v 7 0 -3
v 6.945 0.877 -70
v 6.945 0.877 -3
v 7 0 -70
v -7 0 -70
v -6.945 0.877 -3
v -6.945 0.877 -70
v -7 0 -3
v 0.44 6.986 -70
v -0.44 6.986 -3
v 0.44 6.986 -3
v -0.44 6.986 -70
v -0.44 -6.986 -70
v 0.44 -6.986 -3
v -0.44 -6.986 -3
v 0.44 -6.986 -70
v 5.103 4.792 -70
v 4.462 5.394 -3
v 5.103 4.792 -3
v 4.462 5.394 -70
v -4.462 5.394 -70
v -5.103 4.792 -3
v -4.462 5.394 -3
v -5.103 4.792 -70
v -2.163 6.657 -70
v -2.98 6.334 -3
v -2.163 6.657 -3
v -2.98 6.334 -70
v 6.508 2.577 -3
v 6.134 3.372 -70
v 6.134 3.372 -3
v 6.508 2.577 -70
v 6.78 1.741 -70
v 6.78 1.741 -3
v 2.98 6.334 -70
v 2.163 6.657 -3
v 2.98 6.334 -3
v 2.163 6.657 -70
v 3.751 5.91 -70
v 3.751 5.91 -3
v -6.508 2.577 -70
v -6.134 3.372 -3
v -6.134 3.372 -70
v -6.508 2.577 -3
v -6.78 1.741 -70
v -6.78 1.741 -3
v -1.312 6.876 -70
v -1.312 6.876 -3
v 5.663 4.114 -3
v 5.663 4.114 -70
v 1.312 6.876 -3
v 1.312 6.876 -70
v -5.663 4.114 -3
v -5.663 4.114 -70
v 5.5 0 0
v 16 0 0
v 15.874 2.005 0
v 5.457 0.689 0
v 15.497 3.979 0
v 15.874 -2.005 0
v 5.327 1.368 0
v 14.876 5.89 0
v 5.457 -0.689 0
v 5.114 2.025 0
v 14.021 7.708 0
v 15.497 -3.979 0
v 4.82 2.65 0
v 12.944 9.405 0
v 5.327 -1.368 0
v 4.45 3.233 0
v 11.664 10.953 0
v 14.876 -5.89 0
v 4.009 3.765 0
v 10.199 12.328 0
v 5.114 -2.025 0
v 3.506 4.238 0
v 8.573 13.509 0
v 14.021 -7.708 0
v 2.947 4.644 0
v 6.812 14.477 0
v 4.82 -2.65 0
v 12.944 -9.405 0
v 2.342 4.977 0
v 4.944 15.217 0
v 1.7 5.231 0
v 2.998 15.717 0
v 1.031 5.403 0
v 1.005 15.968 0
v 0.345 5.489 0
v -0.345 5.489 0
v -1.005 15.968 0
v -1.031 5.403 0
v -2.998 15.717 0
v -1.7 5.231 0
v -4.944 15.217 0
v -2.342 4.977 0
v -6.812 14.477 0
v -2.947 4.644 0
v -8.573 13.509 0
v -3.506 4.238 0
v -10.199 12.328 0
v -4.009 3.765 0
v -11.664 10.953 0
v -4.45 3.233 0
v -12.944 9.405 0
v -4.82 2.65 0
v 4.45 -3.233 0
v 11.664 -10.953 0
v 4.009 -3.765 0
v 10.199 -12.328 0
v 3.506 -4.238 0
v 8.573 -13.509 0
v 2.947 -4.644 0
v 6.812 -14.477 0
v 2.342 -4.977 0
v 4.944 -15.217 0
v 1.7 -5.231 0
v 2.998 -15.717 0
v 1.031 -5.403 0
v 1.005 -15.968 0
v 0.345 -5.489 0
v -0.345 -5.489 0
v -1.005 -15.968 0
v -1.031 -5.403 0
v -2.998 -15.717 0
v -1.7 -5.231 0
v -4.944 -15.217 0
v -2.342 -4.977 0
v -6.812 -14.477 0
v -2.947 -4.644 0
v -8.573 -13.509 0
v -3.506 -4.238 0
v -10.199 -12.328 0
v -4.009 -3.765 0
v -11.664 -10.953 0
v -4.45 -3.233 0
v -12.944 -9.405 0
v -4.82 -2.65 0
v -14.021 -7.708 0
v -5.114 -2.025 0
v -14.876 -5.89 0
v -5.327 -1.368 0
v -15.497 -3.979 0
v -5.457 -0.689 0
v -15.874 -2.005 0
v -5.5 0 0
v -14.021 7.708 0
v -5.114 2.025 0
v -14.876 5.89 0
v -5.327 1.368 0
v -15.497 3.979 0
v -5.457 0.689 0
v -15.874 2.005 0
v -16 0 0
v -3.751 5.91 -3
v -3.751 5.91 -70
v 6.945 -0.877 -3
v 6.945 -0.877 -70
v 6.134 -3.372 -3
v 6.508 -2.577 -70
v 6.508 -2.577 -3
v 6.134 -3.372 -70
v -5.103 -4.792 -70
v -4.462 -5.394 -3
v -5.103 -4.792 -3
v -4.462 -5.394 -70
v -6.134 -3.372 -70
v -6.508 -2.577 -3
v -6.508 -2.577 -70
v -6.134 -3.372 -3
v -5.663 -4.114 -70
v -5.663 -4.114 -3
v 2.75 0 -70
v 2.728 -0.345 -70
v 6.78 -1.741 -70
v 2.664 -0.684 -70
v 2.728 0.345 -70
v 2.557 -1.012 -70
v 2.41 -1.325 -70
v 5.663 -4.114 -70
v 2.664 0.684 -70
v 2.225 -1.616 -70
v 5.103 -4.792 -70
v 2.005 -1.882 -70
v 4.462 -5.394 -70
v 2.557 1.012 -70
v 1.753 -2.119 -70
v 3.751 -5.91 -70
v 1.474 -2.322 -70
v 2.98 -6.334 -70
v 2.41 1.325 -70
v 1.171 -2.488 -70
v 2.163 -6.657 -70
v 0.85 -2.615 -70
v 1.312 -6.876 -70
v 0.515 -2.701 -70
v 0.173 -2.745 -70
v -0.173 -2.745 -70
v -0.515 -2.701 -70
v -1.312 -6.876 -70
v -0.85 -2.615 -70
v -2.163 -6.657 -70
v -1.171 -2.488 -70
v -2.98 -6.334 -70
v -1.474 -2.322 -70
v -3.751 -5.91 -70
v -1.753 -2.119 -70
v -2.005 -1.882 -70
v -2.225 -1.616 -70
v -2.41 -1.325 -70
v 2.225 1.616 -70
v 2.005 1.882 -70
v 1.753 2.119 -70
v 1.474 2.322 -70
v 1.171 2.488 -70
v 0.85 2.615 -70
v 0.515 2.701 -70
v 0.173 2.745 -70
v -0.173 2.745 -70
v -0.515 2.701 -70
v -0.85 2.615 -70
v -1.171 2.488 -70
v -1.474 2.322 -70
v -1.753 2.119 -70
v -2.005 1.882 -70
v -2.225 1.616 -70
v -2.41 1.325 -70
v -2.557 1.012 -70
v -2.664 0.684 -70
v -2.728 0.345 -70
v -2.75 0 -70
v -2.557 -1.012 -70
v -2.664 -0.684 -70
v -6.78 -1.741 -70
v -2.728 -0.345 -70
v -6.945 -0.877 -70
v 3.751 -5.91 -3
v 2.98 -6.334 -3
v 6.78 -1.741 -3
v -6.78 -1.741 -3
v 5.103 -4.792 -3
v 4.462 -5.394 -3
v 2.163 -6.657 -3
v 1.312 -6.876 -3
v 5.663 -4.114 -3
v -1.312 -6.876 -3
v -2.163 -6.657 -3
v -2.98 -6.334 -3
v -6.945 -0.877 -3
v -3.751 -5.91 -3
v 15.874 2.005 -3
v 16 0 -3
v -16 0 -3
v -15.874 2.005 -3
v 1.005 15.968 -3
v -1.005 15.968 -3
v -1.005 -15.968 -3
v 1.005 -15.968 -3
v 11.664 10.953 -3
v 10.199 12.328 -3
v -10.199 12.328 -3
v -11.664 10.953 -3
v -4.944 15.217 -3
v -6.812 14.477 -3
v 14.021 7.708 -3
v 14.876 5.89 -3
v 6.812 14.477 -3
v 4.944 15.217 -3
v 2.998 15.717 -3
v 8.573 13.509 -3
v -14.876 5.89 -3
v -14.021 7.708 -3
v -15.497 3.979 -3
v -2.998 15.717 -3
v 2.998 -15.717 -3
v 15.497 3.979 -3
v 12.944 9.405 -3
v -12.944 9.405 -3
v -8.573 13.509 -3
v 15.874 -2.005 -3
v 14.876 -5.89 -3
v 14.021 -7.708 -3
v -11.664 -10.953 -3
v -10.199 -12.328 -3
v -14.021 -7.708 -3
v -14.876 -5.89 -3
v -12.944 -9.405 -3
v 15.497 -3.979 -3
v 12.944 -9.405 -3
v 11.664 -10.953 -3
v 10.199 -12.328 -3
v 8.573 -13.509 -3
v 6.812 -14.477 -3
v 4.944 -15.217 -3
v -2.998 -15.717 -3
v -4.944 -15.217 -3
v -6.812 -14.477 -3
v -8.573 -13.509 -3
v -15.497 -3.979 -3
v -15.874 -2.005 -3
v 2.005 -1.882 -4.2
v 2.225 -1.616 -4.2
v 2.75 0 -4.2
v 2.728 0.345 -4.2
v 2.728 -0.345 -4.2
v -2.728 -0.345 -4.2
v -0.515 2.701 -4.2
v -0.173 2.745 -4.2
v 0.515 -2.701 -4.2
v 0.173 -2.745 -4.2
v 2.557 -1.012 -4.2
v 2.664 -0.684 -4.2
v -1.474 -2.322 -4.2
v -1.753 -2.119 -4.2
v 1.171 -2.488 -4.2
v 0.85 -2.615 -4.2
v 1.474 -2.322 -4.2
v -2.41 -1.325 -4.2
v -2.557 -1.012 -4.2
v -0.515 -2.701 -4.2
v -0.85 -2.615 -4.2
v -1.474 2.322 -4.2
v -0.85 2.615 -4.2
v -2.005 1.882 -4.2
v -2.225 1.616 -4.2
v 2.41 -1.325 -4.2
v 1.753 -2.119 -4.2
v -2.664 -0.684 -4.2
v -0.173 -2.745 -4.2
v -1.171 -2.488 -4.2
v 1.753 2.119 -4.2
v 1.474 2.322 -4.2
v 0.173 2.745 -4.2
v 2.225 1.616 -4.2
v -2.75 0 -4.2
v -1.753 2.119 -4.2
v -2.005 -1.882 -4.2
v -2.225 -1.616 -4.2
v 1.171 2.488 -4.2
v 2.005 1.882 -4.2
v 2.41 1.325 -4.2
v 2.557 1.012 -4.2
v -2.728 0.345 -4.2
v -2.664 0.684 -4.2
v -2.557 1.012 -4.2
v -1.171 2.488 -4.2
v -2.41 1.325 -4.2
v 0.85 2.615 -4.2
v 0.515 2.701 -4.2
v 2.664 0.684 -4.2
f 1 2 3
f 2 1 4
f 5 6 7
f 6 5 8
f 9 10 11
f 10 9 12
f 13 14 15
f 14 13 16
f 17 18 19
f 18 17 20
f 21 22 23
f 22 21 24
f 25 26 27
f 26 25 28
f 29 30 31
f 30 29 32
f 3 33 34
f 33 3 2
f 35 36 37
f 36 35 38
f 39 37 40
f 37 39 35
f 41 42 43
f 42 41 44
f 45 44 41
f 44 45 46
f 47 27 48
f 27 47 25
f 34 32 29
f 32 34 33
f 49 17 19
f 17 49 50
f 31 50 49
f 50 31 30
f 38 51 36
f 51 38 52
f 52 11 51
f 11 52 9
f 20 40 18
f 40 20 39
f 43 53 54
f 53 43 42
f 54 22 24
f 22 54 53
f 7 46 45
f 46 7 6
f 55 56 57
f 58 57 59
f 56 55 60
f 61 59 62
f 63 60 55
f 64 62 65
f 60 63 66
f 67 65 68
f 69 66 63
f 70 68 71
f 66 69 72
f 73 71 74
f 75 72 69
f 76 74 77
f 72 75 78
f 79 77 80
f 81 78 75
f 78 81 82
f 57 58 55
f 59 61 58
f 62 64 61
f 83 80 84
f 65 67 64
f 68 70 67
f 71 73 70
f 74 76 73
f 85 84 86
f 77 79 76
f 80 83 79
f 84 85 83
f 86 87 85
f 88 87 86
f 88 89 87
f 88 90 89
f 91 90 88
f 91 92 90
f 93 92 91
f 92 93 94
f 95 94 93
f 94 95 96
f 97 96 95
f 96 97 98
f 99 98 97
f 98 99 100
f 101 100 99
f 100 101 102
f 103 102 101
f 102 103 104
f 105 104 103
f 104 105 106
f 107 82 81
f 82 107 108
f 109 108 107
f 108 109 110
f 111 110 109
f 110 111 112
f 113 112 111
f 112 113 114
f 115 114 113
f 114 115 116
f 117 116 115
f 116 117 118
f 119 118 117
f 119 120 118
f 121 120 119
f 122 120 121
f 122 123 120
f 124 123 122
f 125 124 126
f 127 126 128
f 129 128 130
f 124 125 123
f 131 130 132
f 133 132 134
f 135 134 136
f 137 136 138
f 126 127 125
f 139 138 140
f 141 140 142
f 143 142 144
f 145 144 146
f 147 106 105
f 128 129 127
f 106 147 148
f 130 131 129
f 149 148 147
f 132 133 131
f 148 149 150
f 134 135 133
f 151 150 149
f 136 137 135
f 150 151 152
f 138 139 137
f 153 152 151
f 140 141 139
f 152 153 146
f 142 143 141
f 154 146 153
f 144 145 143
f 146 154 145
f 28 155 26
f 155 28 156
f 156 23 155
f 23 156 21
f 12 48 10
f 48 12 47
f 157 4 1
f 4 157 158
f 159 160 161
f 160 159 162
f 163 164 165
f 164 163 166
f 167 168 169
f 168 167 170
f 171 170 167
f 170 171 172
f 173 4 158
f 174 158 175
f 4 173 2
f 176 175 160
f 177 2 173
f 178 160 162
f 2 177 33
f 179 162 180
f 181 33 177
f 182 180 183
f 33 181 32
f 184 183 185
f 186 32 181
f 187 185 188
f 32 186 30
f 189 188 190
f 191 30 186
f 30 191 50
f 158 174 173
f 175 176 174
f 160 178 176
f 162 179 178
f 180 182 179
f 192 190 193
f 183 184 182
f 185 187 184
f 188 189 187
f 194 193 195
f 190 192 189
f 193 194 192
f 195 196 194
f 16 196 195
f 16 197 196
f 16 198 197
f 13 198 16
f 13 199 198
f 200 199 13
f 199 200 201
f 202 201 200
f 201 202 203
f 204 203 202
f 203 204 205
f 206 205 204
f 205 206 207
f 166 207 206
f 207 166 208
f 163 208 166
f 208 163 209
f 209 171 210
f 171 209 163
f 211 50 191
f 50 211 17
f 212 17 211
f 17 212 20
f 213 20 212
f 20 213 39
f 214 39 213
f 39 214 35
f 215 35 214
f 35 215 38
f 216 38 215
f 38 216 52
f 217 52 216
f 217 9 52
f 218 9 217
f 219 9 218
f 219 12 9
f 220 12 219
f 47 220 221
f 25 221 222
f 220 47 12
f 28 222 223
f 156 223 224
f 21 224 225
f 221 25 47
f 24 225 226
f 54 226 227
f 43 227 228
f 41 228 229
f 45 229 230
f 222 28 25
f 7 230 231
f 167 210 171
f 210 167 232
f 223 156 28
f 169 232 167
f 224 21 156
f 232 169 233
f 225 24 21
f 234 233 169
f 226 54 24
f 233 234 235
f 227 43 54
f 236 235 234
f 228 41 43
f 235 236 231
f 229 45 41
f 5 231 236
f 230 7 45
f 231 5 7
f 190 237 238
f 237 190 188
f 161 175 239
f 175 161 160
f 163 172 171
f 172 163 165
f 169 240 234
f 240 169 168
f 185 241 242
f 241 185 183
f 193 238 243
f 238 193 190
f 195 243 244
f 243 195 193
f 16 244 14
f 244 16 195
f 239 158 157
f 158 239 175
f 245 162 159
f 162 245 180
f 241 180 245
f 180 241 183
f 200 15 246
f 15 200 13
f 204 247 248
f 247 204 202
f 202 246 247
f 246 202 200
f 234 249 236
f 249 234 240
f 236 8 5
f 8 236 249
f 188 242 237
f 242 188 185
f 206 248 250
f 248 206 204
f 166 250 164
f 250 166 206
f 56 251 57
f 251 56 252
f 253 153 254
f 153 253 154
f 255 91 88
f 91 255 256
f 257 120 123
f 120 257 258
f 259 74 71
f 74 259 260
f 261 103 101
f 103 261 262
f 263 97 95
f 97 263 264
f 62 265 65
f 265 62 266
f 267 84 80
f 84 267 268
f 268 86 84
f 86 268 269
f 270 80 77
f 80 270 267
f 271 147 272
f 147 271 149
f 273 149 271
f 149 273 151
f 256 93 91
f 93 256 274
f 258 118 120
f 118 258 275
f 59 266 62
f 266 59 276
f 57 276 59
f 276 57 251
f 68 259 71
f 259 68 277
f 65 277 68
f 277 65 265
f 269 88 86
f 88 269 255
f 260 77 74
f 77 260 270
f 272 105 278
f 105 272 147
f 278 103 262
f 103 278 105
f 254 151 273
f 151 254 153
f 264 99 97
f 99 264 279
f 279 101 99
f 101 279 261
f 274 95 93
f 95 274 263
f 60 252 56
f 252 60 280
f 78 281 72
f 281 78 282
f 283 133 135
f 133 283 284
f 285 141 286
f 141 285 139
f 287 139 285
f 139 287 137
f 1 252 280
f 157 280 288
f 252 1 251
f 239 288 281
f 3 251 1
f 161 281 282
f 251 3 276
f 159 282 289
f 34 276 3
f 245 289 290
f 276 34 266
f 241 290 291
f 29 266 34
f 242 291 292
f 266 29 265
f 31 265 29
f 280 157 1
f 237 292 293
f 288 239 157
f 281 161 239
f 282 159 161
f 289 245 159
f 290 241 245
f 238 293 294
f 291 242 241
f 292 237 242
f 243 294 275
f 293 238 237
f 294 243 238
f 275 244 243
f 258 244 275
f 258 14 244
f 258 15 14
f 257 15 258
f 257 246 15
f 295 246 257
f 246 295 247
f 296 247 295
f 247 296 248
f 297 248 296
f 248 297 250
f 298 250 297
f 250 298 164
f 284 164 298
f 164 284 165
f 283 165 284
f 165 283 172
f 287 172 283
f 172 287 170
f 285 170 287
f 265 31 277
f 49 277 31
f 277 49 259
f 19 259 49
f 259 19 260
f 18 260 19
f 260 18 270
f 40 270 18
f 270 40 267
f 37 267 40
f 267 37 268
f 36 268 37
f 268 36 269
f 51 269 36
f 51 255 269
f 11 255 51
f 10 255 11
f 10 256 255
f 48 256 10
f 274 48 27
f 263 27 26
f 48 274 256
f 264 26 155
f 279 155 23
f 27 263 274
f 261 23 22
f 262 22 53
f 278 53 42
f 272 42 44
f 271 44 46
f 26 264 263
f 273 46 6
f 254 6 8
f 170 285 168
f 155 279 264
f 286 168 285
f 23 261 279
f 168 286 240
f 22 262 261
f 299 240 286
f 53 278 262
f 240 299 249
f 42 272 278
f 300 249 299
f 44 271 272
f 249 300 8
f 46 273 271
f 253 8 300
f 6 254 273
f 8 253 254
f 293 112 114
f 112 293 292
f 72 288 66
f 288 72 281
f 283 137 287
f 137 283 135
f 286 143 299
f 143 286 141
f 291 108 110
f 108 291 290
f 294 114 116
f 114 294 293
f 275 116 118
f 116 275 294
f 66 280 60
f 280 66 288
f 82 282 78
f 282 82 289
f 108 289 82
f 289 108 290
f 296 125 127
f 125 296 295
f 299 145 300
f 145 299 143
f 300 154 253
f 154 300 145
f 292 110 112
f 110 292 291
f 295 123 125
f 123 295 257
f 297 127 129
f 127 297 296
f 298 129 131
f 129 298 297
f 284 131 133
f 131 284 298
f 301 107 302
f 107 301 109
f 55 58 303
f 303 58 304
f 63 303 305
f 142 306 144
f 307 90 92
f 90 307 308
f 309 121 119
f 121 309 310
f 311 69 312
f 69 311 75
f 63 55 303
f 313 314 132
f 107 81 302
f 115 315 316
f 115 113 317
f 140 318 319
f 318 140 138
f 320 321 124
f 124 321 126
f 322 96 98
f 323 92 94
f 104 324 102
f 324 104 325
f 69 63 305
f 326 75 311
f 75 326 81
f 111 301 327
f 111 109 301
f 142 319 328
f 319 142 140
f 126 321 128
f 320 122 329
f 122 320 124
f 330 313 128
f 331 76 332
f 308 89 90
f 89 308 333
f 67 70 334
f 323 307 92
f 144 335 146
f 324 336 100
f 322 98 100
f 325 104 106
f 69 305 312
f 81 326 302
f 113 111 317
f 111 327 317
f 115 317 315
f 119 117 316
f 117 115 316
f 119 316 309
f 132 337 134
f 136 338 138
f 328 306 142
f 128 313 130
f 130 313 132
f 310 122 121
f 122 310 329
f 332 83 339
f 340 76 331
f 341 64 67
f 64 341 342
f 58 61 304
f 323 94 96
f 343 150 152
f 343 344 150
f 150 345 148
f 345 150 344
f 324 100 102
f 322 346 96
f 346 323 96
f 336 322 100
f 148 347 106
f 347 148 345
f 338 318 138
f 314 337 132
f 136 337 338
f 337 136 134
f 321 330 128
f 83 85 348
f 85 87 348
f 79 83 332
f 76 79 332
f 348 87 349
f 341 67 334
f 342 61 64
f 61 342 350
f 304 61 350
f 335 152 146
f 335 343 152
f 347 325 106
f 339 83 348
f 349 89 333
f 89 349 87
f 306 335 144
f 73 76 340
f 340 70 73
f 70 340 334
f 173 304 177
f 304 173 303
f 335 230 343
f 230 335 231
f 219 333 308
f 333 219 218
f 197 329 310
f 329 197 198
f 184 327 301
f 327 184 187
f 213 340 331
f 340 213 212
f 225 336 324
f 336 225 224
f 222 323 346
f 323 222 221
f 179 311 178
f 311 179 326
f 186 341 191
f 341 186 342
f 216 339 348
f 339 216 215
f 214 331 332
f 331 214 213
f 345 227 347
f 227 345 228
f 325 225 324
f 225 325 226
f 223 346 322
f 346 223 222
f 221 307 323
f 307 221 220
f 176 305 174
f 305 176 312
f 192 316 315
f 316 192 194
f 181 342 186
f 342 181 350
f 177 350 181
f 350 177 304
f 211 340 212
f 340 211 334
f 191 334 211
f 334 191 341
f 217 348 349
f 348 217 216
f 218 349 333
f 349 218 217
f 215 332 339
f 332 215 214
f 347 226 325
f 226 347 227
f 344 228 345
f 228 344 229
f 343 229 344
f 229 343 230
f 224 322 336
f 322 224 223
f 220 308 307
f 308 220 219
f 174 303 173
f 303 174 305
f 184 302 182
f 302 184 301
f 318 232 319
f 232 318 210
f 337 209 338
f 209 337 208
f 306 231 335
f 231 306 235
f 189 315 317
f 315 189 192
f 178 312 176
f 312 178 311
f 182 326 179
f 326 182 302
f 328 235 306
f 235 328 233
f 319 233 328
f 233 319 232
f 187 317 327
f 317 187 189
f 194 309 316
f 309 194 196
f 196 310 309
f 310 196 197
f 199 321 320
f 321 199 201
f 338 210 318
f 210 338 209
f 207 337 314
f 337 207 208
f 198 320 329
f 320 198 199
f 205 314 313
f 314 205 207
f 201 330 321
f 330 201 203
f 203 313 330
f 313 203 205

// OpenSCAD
$fn = 50;


difference() {
	union() {
		translate(v = [0, 0, -70.0000000000]) {
			cylinder(h = 70, r = 7.0000000000);
		}
		translate(v = [0, 0, -3.0000000000]) {
			cylinder(h = 3, r = 16.0000000000);
		}
	}
	union() {
		translate(v = [0, 0, 0]) {
			rotate(a = [0, 0, 0]) {
				difference() {
					union() {
						#translate(v = [0, 0, -70.0000000000]) {
							cylinder(h = 70, r = 2.2500000000);
						}
						#translate(v = [0, 0, -4.2000000000]) {
							cylinder(h = 4.2000000000, r1 = 2.7500000000, r2 = 5.5000000000);
						}
						#translate(v = [0, 0, -70.0000000000]) {
							cylinder(h = 70, r = 2.7500000000);
						}
						#translate(v = [0, 0, -70.0000000000]) {
							cylinder(h = 70, r = 2.2500000000);
						}
					}
					union();
				}
			}
		}
	}
}
